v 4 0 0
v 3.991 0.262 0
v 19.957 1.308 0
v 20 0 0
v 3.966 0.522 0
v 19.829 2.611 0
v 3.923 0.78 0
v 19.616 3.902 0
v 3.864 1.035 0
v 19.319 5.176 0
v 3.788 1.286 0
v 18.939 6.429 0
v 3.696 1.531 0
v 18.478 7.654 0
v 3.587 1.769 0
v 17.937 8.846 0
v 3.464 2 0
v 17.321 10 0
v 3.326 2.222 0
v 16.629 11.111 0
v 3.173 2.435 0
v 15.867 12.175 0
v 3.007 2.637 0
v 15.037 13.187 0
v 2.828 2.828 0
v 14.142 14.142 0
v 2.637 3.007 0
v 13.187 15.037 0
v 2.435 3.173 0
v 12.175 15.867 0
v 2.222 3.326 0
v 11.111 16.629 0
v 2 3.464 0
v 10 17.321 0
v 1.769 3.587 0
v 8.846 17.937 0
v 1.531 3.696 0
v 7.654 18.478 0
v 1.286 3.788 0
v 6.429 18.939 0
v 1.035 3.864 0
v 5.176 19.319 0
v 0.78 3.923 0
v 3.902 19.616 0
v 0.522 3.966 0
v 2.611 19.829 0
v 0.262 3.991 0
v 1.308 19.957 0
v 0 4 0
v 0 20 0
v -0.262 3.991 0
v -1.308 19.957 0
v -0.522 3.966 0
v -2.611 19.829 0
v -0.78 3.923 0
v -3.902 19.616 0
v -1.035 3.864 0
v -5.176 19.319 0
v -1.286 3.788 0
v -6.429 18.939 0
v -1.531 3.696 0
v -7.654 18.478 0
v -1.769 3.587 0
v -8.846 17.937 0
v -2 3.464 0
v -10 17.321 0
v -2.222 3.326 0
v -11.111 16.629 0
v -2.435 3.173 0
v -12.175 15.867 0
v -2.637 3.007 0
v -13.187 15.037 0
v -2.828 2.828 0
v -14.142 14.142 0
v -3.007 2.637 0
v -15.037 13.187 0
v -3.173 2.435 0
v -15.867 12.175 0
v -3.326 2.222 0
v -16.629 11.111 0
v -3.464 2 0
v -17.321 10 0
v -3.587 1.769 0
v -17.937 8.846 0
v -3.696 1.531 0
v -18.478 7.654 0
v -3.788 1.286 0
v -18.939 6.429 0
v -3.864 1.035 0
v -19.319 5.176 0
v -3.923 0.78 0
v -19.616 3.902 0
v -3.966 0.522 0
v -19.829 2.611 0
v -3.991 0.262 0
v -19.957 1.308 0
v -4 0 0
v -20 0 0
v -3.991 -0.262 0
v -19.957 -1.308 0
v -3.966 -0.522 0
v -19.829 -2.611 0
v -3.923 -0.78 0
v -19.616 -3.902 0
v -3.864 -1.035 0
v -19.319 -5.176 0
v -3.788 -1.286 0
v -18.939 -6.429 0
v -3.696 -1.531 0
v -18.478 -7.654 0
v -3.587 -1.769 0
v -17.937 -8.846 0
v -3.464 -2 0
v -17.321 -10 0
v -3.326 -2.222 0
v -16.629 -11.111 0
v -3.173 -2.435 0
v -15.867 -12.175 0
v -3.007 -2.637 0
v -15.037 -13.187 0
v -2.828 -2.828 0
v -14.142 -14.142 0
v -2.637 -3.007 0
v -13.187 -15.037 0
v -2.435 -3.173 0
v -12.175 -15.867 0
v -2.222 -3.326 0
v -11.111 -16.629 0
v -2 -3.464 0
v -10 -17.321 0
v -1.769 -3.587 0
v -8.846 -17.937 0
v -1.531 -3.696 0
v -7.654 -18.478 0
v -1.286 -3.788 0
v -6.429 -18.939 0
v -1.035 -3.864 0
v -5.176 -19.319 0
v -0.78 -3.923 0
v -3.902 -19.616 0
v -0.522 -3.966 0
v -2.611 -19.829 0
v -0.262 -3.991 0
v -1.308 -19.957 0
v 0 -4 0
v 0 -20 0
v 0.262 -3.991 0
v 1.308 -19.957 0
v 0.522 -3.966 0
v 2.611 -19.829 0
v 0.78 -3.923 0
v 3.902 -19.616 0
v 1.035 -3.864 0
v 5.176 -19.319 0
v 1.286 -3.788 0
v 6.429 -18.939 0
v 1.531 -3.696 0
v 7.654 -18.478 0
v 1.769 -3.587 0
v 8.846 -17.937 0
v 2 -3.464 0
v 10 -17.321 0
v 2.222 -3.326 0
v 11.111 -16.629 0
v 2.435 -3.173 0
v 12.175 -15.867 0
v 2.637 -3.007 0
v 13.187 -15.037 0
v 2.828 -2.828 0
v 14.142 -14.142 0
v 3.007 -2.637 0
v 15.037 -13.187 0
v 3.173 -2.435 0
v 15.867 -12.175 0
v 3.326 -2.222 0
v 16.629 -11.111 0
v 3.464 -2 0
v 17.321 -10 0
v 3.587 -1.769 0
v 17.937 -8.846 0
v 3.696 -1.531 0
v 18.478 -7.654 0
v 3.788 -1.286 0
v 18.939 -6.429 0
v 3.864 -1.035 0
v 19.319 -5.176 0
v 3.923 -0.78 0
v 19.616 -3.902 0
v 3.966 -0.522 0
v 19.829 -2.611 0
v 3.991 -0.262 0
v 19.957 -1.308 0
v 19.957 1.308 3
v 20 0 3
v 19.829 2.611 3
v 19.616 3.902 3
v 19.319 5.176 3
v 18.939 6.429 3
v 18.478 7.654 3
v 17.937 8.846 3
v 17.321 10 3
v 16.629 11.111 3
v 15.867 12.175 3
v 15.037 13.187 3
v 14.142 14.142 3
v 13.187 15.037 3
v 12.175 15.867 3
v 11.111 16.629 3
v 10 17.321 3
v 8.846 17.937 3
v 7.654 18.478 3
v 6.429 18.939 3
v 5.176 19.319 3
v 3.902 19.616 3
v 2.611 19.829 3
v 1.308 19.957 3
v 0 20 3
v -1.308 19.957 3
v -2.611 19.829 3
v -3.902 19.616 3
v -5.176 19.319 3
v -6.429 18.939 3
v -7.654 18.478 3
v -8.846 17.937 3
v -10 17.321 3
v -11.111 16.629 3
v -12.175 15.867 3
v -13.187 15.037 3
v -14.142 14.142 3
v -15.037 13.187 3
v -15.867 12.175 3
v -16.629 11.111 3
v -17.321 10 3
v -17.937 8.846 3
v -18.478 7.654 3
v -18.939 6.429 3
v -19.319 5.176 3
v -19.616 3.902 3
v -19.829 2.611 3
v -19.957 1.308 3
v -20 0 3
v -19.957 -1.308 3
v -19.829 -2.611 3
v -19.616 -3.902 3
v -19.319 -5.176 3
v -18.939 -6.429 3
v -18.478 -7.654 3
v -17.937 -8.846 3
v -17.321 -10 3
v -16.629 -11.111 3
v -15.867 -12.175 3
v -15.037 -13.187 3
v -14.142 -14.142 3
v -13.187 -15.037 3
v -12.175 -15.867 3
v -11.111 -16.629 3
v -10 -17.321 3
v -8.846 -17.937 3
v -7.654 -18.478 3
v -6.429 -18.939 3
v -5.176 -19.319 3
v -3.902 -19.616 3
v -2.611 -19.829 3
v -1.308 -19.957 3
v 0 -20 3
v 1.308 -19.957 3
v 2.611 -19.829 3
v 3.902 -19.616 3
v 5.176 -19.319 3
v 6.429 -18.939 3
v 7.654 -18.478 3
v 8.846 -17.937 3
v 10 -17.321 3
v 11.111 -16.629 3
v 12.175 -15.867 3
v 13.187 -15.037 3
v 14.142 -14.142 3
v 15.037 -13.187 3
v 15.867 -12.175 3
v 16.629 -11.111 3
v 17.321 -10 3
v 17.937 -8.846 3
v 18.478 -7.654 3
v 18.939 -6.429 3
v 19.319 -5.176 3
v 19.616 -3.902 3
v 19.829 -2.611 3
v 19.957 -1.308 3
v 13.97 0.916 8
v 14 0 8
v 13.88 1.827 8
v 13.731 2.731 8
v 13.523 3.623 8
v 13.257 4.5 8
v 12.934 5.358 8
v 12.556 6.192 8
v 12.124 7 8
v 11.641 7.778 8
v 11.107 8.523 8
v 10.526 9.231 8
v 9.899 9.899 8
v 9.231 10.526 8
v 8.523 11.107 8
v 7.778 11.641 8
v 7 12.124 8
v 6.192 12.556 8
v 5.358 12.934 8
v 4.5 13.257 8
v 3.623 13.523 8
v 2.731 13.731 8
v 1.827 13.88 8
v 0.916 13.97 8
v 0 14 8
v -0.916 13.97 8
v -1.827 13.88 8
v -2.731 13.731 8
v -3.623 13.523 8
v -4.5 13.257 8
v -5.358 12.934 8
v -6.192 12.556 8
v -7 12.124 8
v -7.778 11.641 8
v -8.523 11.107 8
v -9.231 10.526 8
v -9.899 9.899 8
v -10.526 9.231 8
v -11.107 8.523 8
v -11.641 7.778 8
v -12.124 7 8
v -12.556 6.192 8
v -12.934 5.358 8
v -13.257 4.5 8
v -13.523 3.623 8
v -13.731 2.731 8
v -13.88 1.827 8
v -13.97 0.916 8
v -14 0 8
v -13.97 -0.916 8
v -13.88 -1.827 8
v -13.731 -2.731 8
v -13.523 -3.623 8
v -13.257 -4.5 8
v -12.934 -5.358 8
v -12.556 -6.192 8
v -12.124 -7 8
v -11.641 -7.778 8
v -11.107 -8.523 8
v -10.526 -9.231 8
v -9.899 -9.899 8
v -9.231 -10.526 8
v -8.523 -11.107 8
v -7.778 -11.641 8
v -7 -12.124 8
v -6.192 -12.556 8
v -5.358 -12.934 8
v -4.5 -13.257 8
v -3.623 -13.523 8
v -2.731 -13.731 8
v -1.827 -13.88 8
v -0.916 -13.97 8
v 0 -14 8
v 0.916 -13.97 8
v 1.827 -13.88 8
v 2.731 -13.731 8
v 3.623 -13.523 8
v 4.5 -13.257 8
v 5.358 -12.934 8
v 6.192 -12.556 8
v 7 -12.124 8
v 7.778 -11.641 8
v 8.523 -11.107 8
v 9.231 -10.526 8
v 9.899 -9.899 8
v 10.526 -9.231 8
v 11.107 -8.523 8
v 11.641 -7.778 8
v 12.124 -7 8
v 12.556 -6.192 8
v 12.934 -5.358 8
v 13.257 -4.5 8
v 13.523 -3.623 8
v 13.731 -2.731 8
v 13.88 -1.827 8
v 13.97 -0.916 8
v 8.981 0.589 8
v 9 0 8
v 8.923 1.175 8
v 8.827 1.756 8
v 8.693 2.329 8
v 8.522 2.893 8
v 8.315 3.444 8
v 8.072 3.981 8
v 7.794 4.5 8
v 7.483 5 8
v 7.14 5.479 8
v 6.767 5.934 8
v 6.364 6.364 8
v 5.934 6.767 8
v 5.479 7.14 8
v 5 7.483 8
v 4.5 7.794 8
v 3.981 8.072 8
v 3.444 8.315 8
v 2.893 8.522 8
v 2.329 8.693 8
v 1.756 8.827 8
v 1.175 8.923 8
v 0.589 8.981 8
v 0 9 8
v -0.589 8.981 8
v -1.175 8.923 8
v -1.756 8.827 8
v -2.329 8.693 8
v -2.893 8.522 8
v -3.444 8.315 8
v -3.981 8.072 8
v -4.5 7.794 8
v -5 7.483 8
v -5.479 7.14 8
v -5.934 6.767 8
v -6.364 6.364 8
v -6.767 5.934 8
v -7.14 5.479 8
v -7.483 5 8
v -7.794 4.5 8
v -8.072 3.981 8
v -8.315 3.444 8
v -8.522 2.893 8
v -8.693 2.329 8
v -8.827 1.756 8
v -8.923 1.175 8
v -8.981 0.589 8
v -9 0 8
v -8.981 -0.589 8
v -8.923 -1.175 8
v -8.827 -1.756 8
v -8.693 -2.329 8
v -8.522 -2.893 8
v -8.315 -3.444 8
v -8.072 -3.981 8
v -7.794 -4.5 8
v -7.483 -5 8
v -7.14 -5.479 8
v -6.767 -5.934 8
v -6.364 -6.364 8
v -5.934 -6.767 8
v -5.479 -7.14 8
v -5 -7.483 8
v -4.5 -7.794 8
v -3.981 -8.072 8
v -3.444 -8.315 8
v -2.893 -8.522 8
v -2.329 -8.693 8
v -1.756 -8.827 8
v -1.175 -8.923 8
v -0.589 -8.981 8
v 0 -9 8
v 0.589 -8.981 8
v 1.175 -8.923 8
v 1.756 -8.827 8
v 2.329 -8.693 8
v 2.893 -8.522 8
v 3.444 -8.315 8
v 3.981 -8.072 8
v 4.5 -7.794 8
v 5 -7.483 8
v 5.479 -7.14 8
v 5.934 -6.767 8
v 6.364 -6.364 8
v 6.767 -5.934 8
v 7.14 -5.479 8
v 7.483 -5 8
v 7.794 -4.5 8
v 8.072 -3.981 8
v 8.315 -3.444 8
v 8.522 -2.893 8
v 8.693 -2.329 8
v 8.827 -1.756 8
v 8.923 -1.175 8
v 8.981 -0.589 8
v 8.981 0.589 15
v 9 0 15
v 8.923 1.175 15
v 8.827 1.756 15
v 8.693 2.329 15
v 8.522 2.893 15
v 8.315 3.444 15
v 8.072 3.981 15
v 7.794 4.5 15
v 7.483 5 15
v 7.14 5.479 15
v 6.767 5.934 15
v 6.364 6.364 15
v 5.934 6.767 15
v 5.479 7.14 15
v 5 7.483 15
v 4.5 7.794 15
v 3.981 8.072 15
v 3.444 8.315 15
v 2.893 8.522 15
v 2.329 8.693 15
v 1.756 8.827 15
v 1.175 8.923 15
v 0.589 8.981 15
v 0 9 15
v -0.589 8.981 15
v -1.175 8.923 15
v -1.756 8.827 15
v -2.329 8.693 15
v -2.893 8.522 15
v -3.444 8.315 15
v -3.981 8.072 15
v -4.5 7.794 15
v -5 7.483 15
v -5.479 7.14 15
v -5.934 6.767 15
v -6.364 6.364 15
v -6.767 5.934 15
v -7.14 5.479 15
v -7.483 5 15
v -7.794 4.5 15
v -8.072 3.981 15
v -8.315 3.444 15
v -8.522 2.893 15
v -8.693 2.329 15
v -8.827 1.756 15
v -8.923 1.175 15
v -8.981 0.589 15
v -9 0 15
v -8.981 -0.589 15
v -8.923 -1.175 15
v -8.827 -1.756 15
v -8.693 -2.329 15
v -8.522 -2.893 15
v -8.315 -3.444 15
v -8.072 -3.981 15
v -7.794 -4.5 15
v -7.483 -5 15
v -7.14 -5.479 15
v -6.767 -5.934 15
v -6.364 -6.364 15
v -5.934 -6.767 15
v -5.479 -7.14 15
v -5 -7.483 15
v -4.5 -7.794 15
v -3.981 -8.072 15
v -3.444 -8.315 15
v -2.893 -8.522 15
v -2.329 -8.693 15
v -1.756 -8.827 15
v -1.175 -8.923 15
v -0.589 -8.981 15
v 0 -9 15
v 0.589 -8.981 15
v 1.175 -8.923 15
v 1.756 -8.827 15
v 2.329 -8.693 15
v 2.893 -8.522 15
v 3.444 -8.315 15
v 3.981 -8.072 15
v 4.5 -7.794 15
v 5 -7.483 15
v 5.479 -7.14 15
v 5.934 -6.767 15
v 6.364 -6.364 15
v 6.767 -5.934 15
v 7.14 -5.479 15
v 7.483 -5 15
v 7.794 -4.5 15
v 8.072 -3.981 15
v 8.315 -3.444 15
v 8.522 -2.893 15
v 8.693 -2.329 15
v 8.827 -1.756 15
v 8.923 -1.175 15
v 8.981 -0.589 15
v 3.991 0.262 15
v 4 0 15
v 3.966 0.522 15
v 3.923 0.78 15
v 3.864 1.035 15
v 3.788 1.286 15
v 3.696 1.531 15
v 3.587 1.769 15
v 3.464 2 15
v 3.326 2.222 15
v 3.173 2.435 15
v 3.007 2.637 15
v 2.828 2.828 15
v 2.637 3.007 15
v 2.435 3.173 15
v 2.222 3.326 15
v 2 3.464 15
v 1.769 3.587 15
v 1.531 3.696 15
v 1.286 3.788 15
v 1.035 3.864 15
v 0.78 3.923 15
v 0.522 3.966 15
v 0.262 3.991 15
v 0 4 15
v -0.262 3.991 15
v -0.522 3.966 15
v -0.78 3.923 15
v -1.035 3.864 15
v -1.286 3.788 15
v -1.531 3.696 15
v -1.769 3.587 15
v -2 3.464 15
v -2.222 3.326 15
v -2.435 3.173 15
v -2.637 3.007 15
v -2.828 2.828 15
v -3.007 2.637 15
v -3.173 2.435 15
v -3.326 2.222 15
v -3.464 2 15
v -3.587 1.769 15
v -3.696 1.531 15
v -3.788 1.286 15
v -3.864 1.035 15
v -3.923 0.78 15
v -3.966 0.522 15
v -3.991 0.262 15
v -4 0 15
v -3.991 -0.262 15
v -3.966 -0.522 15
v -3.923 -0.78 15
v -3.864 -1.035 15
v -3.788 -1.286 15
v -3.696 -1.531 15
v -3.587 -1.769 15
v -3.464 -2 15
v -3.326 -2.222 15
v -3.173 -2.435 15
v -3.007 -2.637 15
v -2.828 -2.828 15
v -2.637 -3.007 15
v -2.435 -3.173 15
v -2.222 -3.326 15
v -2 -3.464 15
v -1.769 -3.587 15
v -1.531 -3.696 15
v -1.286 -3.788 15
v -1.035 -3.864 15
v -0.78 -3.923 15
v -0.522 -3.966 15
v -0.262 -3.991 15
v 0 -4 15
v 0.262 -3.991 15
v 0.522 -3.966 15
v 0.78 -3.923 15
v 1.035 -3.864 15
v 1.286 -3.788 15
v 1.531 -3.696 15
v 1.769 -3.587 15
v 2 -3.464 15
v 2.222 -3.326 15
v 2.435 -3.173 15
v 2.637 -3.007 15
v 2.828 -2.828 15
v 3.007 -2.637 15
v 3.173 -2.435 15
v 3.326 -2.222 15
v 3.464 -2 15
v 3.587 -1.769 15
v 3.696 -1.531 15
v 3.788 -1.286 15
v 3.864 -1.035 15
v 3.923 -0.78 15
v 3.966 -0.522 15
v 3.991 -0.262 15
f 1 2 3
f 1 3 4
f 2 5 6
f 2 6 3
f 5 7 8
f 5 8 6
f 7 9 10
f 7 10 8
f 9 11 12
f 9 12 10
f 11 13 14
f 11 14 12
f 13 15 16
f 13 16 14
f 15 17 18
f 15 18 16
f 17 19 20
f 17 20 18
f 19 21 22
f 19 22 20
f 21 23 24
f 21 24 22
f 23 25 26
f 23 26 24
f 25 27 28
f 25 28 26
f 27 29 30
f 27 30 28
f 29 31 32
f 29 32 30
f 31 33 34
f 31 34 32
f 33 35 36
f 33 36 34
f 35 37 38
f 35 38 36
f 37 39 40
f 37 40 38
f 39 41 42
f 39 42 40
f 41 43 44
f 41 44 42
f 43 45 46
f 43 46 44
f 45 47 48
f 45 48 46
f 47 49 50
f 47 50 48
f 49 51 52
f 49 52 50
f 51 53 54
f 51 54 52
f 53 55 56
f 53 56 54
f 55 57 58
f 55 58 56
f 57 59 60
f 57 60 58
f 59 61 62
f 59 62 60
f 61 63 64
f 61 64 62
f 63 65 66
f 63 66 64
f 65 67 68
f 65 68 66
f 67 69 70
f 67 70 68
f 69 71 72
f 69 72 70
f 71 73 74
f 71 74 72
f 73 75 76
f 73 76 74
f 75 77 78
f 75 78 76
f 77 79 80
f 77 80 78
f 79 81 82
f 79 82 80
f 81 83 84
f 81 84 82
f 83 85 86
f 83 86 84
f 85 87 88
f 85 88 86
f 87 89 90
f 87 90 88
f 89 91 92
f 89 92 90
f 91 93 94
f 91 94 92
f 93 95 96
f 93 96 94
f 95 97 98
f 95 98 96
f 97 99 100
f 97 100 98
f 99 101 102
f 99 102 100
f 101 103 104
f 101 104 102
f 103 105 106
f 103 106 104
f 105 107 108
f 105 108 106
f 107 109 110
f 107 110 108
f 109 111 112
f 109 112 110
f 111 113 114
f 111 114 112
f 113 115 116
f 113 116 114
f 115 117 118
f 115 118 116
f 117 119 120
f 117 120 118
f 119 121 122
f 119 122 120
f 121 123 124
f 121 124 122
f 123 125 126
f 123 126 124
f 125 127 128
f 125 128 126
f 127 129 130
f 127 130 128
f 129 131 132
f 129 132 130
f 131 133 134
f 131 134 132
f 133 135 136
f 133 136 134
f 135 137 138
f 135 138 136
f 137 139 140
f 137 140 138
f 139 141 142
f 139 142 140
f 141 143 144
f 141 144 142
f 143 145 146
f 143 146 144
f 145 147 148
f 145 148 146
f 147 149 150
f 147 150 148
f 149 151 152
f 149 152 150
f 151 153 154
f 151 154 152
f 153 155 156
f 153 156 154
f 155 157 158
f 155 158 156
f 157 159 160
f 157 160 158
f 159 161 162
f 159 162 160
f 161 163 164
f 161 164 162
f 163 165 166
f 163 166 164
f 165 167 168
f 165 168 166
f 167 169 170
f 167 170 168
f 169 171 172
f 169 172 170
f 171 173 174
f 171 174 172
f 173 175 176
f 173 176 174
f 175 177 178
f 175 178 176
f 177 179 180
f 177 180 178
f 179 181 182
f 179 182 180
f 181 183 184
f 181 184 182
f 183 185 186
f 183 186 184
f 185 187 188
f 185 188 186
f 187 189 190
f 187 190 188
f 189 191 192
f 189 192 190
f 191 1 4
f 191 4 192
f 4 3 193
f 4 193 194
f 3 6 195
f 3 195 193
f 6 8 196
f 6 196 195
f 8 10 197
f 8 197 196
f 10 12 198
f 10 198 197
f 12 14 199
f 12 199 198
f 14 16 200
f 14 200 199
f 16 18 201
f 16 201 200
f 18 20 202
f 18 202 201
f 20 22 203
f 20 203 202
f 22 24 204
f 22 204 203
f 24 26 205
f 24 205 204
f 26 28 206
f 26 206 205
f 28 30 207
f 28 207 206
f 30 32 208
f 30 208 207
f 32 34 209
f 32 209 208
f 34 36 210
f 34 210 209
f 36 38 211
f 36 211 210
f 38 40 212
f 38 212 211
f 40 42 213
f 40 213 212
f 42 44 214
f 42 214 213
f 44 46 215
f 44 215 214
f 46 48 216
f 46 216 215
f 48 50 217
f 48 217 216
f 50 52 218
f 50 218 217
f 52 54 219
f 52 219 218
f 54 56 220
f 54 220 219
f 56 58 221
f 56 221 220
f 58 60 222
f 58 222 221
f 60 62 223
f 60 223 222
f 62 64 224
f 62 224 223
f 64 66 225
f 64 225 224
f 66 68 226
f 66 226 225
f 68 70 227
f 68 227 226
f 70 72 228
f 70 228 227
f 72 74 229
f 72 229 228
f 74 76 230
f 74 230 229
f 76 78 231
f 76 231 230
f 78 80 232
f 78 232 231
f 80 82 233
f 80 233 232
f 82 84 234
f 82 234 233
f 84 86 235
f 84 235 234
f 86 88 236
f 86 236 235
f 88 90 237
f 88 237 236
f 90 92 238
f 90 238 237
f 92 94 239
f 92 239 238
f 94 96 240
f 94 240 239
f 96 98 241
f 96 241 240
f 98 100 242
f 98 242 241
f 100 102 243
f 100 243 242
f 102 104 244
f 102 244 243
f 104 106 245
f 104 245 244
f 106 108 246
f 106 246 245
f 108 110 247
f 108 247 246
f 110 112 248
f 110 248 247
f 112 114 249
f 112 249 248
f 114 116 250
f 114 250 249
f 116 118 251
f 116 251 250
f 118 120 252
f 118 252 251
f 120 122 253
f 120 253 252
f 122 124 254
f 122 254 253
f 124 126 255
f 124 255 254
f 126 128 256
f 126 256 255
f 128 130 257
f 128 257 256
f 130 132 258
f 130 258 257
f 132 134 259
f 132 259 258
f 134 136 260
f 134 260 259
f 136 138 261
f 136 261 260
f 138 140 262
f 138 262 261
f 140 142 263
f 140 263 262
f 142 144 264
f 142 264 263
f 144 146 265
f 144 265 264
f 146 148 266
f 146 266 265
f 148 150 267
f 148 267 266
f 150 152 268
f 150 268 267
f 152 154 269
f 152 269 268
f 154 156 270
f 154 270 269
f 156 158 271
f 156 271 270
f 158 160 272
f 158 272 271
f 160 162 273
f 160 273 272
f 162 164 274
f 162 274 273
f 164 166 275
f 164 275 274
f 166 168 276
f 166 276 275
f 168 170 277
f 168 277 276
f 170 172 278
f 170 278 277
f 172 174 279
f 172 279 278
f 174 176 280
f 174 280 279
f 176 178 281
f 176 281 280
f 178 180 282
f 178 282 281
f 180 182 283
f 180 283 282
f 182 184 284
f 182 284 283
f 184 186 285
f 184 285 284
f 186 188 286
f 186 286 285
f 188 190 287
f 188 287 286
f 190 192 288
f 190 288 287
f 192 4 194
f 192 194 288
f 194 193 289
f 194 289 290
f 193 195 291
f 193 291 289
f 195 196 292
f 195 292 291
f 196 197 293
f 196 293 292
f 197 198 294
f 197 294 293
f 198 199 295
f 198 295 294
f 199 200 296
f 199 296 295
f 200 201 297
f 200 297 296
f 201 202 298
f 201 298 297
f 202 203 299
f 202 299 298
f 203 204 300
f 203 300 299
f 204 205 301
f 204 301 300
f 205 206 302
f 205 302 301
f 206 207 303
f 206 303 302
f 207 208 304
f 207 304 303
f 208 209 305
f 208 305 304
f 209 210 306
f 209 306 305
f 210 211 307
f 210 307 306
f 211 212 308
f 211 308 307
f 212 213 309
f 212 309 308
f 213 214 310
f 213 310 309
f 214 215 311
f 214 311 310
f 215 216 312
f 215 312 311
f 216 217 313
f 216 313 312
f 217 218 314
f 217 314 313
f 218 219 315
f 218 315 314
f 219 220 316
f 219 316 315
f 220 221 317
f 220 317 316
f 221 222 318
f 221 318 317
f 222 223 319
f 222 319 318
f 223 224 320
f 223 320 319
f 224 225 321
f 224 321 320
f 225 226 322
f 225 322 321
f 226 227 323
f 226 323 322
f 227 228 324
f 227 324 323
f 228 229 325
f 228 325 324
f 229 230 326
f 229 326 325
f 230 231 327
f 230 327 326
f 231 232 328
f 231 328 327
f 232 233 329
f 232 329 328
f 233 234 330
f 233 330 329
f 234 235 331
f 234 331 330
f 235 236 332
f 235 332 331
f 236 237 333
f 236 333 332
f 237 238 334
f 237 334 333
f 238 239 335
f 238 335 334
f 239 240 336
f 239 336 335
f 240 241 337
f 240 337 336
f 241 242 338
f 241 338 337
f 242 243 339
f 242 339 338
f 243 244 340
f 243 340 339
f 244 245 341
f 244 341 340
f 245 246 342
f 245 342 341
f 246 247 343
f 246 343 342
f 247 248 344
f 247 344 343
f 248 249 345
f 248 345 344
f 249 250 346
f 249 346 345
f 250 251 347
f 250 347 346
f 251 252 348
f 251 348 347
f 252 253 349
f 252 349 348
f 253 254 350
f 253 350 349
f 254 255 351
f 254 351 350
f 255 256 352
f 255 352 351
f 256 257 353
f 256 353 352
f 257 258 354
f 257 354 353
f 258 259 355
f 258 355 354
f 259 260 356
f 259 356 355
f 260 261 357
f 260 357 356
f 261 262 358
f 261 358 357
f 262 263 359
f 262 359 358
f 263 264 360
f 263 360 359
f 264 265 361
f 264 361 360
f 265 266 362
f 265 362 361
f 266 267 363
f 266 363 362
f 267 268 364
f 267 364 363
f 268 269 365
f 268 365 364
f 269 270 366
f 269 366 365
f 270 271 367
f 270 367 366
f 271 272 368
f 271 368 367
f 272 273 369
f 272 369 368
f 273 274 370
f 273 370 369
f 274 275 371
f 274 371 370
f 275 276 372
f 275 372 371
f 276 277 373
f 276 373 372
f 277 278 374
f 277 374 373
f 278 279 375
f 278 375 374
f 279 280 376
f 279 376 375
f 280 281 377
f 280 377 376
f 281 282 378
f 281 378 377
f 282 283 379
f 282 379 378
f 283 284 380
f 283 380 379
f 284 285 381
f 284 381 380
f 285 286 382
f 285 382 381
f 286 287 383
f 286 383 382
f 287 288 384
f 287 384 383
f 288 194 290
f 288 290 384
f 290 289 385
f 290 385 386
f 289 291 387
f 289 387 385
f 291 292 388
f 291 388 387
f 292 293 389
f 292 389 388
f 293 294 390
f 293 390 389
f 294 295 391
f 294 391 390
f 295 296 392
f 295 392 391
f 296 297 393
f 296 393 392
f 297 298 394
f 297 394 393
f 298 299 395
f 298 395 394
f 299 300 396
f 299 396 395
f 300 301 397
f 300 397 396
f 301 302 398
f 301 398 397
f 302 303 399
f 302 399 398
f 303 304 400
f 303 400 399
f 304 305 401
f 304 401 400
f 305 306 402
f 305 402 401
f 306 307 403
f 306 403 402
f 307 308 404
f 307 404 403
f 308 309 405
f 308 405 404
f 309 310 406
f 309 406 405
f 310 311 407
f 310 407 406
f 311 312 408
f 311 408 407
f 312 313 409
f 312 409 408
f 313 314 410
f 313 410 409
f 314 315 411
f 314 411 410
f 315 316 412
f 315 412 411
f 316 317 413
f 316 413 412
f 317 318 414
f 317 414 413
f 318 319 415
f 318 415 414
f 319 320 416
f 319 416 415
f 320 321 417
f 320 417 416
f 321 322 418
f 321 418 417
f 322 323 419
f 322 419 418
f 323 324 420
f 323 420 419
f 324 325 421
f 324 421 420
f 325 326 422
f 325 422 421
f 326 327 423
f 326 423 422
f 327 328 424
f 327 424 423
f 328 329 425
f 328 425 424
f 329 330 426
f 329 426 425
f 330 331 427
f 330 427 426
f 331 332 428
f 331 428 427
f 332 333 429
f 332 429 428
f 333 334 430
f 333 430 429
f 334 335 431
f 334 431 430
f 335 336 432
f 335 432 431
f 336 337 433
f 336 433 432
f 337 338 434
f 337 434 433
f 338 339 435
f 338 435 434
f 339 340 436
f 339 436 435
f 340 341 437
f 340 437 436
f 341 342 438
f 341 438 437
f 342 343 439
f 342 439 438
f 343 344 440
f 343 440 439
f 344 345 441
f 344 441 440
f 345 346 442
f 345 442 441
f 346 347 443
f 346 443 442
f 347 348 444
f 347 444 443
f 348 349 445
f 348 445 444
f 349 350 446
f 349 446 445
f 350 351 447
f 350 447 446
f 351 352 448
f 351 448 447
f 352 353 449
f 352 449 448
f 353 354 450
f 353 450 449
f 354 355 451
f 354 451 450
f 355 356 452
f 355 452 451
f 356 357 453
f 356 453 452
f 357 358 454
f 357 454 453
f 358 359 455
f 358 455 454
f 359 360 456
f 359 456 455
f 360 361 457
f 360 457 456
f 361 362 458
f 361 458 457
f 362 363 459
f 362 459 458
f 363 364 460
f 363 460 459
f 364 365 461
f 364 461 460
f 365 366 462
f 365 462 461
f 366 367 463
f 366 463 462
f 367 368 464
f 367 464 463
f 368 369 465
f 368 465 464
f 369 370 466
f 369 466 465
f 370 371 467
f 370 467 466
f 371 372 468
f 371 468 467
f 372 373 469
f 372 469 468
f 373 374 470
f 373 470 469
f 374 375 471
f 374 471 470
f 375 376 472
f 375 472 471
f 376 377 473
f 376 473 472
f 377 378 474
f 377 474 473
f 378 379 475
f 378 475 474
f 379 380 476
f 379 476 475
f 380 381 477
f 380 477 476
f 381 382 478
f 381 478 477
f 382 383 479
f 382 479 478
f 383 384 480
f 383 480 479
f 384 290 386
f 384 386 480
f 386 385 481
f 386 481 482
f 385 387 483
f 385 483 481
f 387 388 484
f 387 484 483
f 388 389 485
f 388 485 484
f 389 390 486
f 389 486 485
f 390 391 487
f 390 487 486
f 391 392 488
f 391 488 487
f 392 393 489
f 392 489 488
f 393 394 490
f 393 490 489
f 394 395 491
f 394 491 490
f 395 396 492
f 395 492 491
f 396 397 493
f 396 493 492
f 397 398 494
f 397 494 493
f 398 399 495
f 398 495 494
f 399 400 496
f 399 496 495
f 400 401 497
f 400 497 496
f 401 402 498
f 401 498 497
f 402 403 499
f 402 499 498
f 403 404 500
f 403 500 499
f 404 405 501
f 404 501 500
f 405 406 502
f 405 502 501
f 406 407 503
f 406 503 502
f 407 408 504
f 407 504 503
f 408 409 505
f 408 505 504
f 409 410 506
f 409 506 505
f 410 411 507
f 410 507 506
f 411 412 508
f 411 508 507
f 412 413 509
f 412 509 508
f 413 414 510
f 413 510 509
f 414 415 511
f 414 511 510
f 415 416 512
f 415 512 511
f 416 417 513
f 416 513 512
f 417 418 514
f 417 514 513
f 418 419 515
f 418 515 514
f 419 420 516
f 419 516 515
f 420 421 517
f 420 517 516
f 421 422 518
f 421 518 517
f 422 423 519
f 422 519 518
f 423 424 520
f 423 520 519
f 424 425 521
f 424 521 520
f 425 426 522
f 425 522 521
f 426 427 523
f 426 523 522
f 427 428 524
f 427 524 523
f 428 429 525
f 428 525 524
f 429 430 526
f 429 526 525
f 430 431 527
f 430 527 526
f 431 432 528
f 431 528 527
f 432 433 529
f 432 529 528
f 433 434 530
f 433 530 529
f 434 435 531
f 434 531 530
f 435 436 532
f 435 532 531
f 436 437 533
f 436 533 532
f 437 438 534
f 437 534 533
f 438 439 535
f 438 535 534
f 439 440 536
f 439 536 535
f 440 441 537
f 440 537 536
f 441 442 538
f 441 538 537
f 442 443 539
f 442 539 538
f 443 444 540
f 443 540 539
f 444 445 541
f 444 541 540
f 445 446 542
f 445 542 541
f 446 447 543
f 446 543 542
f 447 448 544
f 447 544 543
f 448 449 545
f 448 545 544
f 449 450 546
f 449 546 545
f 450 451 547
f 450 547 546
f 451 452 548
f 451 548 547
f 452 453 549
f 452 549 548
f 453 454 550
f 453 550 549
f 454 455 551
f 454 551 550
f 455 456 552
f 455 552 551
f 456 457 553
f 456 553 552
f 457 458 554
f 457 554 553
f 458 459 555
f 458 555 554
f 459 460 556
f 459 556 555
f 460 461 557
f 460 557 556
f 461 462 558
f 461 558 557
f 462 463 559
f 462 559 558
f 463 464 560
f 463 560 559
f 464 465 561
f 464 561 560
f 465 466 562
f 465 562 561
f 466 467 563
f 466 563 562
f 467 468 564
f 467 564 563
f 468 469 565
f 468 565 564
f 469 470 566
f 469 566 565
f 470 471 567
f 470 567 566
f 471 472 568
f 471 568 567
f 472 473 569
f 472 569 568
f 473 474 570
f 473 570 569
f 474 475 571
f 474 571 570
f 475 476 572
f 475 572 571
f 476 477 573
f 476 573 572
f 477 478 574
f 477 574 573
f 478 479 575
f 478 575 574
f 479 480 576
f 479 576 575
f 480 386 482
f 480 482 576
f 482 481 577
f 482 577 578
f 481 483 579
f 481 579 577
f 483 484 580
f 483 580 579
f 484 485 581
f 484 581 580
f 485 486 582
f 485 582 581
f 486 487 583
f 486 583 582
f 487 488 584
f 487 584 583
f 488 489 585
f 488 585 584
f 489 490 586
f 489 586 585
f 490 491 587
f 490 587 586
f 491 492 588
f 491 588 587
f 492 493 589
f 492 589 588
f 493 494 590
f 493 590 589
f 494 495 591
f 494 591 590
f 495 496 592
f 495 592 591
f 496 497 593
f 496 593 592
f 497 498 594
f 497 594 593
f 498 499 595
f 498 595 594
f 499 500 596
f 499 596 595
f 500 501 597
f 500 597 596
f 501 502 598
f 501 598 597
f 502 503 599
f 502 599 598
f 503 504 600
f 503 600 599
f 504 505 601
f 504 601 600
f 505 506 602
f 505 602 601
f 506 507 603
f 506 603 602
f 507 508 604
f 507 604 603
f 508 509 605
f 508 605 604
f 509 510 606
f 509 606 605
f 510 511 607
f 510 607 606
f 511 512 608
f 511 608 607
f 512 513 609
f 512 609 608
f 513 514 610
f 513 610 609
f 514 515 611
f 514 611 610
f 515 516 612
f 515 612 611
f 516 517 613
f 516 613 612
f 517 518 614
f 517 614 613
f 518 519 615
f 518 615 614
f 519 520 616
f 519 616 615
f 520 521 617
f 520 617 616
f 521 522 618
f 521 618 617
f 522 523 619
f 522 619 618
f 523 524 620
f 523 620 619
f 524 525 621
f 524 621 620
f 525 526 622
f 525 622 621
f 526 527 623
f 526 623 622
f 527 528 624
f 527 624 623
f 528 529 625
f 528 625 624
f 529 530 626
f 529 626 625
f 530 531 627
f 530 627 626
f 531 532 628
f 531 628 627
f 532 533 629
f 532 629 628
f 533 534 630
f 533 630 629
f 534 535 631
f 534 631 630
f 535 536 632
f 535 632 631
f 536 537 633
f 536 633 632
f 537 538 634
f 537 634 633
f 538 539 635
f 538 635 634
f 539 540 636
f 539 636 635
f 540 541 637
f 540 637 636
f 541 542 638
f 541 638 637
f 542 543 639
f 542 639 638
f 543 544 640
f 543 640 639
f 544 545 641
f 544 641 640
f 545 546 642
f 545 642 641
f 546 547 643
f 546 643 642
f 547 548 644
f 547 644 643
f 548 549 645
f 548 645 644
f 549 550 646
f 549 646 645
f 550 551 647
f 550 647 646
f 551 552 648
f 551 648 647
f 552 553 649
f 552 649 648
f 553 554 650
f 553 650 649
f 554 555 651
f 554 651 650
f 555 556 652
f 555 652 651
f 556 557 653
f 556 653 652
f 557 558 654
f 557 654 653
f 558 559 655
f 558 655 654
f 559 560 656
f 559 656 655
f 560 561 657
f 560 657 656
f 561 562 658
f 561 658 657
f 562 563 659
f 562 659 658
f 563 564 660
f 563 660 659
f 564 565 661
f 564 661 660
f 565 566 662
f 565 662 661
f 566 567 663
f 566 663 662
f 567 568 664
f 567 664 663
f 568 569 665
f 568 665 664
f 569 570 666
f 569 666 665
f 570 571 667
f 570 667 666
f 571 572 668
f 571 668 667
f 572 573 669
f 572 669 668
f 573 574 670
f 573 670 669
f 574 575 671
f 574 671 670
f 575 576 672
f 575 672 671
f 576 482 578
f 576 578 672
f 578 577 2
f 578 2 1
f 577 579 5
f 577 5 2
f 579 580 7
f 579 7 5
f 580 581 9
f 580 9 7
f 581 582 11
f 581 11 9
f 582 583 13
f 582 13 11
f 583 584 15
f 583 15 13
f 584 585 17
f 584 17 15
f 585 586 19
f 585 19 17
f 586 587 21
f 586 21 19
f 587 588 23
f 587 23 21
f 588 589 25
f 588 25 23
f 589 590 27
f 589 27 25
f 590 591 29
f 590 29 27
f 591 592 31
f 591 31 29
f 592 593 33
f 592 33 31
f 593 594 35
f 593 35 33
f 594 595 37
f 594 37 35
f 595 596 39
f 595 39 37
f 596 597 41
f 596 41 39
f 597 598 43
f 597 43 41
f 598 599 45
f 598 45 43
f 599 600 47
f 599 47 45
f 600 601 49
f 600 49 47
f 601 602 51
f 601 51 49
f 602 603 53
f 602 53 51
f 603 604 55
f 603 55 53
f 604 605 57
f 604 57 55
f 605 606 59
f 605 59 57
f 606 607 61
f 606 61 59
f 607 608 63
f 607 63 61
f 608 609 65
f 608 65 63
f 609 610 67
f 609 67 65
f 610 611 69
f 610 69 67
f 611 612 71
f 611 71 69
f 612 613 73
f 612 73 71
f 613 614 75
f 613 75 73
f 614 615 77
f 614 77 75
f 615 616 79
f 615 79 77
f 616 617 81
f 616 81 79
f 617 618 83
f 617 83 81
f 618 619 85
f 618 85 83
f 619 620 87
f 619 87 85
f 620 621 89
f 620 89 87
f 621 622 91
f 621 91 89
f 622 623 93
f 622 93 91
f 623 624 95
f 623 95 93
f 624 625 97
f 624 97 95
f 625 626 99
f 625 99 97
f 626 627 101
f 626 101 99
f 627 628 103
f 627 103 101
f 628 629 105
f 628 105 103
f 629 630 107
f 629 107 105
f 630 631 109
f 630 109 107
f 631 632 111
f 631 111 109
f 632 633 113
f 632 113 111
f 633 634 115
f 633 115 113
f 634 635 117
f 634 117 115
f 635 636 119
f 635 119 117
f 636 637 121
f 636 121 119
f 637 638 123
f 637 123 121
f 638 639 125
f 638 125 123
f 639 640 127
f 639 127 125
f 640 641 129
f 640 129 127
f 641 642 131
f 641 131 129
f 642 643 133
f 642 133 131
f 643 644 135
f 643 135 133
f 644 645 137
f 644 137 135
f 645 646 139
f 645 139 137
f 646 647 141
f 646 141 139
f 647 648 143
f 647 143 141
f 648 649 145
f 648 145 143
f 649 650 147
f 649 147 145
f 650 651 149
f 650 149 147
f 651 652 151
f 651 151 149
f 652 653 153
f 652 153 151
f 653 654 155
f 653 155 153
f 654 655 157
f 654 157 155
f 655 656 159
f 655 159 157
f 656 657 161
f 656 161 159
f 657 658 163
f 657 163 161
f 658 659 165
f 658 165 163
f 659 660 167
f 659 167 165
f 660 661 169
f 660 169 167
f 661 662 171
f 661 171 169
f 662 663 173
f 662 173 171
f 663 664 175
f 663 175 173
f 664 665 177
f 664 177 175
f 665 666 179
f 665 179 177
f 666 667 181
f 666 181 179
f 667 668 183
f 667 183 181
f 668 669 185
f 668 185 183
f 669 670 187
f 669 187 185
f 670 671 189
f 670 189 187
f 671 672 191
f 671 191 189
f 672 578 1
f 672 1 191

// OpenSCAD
// Original MechIntel educational model. CC0-1.0. Units: mm.
// Not a standardized or load-rated component.
$fn=96;
// Section points: [radius, height], mm. Edit to change the profile.
section=[[4, 0], [20, 0], [20, 3], [14, 8], [9, 8], [9, 15], [4, 15]];
rotate_extrude($fn=96) polygon(points=section);
